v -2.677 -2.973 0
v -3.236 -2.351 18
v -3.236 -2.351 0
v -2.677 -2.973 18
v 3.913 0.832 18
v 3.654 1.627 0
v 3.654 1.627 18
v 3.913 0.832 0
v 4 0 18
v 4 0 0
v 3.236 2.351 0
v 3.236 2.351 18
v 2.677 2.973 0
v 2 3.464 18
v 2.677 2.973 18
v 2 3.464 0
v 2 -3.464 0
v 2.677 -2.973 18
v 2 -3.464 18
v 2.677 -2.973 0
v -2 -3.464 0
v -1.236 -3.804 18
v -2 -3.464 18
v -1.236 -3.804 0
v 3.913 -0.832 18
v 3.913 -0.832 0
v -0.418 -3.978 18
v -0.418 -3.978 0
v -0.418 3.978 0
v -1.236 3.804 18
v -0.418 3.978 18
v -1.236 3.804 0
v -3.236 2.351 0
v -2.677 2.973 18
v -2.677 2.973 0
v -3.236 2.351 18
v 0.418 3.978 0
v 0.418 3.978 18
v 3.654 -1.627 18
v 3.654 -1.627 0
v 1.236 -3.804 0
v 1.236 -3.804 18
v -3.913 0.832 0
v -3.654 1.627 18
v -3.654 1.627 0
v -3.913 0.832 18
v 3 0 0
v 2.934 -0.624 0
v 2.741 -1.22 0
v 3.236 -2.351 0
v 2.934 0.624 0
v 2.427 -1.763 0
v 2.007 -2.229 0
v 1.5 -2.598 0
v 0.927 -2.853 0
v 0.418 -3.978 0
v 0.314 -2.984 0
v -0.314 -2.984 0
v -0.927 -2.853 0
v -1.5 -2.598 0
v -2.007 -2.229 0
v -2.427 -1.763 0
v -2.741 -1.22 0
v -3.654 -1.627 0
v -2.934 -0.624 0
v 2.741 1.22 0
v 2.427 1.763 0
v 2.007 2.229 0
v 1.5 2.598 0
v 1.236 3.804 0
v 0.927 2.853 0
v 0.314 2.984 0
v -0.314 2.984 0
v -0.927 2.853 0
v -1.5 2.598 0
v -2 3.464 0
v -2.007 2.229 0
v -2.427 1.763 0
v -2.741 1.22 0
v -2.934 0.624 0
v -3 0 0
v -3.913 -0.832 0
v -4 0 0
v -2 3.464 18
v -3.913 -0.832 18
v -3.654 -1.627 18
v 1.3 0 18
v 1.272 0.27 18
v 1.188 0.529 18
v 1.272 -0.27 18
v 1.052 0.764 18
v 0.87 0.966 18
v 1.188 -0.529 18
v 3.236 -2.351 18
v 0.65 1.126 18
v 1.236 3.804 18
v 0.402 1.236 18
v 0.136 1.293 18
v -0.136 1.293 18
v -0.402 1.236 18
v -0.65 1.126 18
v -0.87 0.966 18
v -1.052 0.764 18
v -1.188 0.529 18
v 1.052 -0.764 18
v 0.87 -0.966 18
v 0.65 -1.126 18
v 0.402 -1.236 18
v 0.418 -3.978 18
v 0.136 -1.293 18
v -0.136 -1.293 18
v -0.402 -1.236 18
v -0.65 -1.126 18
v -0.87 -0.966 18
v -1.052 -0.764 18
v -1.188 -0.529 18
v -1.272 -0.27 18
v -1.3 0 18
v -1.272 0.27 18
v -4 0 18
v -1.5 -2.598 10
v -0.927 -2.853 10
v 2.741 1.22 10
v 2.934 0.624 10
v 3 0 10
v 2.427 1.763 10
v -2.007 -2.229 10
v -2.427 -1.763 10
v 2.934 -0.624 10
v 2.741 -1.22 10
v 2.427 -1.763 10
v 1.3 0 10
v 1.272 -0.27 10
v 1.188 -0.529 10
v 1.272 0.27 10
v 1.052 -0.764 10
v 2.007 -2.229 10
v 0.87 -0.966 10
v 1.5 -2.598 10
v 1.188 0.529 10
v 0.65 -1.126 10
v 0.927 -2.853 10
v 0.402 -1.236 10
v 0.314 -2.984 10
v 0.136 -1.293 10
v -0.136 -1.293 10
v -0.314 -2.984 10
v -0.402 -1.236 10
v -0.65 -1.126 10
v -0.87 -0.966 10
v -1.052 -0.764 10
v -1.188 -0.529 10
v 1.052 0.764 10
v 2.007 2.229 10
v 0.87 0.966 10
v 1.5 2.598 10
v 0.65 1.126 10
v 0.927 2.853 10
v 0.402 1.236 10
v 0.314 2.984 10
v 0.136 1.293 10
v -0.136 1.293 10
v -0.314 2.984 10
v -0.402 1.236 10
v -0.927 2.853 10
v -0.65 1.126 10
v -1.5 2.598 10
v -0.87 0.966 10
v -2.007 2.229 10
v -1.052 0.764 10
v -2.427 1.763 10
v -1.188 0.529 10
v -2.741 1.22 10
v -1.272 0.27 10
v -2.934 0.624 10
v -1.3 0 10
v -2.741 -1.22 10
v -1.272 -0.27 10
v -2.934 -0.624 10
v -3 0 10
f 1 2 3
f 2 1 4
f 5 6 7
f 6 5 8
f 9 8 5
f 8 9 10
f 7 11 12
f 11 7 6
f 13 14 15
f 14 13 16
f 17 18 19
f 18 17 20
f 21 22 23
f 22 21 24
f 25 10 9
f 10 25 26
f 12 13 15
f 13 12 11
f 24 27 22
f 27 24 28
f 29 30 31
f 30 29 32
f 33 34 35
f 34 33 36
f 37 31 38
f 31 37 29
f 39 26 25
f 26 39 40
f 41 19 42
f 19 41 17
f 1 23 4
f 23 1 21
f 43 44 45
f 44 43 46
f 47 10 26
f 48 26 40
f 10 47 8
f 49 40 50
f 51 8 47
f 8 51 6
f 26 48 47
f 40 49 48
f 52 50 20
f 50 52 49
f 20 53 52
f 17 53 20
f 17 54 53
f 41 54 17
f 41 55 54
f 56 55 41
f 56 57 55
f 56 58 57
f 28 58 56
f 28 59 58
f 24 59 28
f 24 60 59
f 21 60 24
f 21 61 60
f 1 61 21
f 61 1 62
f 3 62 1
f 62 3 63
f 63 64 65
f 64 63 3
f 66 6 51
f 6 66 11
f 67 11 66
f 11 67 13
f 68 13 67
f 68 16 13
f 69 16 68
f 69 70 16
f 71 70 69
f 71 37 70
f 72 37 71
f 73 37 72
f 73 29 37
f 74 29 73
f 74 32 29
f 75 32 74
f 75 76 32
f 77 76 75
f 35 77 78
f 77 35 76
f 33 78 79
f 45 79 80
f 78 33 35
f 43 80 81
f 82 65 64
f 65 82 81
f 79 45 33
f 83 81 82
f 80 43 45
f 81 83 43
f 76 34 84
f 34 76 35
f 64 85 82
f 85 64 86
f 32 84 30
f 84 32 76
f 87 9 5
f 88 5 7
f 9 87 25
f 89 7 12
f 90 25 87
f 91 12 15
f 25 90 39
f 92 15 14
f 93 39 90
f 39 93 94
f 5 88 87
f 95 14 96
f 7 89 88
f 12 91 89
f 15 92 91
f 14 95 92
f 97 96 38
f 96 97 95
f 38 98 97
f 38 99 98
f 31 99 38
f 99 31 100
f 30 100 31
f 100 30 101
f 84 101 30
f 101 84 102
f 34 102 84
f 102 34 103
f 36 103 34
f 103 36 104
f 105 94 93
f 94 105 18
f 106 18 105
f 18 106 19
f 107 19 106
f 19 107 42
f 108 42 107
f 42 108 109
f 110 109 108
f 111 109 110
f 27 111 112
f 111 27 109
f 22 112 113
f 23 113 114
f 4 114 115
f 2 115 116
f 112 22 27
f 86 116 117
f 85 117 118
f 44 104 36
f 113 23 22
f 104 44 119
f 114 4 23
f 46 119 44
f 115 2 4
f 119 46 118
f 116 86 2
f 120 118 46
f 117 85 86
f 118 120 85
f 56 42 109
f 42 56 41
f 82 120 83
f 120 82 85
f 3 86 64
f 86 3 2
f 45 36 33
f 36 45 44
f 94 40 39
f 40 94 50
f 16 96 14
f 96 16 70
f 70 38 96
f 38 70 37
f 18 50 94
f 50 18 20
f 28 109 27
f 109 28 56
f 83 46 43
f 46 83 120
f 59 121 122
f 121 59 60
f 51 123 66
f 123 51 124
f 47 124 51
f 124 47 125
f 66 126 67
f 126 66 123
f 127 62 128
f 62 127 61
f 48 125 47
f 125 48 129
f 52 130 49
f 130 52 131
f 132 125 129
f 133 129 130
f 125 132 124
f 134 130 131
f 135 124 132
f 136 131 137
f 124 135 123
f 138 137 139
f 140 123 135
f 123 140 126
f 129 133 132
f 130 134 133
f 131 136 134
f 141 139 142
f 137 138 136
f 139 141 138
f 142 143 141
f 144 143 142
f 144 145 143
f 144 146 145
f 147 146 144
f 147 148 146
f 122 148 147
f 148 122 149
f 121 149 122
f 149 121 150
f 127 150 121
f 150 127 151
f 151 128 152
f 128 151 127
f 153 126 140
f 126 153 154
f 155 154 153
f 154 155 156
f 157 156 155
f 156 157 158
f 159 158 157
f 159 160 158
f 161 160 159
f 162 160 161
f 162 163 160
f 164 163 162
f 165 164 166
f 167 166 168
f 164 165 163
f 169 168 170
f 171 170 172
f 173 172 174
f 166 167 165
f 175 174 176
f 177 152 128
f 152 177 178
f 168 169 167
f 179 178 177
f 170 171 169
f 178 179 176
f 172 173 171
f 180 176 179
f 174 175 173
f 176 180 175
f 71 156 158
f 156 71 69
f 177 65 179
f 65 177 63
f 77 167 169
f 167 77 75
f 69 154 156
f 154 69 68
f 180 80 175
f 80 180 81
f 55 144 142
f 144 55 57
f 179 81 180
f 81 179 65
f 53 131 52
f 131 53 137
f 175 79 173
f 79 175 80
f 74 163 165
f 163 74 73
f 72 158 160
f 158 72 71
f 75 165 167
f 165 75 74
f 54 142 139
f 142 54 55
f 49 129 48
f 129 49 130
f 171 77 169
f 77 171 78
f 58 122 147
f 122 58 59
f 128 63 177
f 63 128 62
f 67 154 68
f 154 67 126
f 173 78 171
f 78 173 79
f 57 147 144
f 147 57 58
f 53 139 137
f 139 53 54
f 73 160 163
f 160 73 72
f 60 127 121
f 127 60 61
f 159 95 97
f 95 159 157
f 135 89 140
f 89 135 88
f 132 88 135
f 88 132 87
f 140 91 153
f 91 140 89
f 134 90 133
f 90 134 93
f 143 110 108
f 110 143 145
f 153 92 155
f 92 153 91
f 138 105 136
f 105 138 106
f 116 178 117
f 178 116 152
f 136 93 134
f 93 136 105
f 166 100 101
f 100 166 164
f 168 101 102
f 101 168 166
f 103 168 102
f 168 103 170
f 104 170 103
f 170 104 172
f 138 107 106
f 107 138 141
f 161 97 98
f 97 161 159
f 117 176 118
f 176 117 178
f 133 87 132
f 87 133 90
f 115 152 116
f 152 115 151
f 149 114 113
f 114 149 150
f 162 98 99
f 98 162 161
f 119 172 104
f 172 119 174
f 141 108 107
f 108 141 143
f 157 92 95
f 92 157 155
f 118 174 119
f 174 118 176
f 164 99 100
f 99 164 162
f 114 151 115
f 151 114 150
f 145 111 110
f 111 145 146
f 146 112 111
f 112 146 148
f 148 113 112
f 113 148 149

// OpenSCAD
difference() {
    cylinder(18, r = 3 + 1, $fn = 30);
    cylinder(10, r = 3, $fn = 30);
    cylinder(18, r = 1.3, $fn = 30);
}
